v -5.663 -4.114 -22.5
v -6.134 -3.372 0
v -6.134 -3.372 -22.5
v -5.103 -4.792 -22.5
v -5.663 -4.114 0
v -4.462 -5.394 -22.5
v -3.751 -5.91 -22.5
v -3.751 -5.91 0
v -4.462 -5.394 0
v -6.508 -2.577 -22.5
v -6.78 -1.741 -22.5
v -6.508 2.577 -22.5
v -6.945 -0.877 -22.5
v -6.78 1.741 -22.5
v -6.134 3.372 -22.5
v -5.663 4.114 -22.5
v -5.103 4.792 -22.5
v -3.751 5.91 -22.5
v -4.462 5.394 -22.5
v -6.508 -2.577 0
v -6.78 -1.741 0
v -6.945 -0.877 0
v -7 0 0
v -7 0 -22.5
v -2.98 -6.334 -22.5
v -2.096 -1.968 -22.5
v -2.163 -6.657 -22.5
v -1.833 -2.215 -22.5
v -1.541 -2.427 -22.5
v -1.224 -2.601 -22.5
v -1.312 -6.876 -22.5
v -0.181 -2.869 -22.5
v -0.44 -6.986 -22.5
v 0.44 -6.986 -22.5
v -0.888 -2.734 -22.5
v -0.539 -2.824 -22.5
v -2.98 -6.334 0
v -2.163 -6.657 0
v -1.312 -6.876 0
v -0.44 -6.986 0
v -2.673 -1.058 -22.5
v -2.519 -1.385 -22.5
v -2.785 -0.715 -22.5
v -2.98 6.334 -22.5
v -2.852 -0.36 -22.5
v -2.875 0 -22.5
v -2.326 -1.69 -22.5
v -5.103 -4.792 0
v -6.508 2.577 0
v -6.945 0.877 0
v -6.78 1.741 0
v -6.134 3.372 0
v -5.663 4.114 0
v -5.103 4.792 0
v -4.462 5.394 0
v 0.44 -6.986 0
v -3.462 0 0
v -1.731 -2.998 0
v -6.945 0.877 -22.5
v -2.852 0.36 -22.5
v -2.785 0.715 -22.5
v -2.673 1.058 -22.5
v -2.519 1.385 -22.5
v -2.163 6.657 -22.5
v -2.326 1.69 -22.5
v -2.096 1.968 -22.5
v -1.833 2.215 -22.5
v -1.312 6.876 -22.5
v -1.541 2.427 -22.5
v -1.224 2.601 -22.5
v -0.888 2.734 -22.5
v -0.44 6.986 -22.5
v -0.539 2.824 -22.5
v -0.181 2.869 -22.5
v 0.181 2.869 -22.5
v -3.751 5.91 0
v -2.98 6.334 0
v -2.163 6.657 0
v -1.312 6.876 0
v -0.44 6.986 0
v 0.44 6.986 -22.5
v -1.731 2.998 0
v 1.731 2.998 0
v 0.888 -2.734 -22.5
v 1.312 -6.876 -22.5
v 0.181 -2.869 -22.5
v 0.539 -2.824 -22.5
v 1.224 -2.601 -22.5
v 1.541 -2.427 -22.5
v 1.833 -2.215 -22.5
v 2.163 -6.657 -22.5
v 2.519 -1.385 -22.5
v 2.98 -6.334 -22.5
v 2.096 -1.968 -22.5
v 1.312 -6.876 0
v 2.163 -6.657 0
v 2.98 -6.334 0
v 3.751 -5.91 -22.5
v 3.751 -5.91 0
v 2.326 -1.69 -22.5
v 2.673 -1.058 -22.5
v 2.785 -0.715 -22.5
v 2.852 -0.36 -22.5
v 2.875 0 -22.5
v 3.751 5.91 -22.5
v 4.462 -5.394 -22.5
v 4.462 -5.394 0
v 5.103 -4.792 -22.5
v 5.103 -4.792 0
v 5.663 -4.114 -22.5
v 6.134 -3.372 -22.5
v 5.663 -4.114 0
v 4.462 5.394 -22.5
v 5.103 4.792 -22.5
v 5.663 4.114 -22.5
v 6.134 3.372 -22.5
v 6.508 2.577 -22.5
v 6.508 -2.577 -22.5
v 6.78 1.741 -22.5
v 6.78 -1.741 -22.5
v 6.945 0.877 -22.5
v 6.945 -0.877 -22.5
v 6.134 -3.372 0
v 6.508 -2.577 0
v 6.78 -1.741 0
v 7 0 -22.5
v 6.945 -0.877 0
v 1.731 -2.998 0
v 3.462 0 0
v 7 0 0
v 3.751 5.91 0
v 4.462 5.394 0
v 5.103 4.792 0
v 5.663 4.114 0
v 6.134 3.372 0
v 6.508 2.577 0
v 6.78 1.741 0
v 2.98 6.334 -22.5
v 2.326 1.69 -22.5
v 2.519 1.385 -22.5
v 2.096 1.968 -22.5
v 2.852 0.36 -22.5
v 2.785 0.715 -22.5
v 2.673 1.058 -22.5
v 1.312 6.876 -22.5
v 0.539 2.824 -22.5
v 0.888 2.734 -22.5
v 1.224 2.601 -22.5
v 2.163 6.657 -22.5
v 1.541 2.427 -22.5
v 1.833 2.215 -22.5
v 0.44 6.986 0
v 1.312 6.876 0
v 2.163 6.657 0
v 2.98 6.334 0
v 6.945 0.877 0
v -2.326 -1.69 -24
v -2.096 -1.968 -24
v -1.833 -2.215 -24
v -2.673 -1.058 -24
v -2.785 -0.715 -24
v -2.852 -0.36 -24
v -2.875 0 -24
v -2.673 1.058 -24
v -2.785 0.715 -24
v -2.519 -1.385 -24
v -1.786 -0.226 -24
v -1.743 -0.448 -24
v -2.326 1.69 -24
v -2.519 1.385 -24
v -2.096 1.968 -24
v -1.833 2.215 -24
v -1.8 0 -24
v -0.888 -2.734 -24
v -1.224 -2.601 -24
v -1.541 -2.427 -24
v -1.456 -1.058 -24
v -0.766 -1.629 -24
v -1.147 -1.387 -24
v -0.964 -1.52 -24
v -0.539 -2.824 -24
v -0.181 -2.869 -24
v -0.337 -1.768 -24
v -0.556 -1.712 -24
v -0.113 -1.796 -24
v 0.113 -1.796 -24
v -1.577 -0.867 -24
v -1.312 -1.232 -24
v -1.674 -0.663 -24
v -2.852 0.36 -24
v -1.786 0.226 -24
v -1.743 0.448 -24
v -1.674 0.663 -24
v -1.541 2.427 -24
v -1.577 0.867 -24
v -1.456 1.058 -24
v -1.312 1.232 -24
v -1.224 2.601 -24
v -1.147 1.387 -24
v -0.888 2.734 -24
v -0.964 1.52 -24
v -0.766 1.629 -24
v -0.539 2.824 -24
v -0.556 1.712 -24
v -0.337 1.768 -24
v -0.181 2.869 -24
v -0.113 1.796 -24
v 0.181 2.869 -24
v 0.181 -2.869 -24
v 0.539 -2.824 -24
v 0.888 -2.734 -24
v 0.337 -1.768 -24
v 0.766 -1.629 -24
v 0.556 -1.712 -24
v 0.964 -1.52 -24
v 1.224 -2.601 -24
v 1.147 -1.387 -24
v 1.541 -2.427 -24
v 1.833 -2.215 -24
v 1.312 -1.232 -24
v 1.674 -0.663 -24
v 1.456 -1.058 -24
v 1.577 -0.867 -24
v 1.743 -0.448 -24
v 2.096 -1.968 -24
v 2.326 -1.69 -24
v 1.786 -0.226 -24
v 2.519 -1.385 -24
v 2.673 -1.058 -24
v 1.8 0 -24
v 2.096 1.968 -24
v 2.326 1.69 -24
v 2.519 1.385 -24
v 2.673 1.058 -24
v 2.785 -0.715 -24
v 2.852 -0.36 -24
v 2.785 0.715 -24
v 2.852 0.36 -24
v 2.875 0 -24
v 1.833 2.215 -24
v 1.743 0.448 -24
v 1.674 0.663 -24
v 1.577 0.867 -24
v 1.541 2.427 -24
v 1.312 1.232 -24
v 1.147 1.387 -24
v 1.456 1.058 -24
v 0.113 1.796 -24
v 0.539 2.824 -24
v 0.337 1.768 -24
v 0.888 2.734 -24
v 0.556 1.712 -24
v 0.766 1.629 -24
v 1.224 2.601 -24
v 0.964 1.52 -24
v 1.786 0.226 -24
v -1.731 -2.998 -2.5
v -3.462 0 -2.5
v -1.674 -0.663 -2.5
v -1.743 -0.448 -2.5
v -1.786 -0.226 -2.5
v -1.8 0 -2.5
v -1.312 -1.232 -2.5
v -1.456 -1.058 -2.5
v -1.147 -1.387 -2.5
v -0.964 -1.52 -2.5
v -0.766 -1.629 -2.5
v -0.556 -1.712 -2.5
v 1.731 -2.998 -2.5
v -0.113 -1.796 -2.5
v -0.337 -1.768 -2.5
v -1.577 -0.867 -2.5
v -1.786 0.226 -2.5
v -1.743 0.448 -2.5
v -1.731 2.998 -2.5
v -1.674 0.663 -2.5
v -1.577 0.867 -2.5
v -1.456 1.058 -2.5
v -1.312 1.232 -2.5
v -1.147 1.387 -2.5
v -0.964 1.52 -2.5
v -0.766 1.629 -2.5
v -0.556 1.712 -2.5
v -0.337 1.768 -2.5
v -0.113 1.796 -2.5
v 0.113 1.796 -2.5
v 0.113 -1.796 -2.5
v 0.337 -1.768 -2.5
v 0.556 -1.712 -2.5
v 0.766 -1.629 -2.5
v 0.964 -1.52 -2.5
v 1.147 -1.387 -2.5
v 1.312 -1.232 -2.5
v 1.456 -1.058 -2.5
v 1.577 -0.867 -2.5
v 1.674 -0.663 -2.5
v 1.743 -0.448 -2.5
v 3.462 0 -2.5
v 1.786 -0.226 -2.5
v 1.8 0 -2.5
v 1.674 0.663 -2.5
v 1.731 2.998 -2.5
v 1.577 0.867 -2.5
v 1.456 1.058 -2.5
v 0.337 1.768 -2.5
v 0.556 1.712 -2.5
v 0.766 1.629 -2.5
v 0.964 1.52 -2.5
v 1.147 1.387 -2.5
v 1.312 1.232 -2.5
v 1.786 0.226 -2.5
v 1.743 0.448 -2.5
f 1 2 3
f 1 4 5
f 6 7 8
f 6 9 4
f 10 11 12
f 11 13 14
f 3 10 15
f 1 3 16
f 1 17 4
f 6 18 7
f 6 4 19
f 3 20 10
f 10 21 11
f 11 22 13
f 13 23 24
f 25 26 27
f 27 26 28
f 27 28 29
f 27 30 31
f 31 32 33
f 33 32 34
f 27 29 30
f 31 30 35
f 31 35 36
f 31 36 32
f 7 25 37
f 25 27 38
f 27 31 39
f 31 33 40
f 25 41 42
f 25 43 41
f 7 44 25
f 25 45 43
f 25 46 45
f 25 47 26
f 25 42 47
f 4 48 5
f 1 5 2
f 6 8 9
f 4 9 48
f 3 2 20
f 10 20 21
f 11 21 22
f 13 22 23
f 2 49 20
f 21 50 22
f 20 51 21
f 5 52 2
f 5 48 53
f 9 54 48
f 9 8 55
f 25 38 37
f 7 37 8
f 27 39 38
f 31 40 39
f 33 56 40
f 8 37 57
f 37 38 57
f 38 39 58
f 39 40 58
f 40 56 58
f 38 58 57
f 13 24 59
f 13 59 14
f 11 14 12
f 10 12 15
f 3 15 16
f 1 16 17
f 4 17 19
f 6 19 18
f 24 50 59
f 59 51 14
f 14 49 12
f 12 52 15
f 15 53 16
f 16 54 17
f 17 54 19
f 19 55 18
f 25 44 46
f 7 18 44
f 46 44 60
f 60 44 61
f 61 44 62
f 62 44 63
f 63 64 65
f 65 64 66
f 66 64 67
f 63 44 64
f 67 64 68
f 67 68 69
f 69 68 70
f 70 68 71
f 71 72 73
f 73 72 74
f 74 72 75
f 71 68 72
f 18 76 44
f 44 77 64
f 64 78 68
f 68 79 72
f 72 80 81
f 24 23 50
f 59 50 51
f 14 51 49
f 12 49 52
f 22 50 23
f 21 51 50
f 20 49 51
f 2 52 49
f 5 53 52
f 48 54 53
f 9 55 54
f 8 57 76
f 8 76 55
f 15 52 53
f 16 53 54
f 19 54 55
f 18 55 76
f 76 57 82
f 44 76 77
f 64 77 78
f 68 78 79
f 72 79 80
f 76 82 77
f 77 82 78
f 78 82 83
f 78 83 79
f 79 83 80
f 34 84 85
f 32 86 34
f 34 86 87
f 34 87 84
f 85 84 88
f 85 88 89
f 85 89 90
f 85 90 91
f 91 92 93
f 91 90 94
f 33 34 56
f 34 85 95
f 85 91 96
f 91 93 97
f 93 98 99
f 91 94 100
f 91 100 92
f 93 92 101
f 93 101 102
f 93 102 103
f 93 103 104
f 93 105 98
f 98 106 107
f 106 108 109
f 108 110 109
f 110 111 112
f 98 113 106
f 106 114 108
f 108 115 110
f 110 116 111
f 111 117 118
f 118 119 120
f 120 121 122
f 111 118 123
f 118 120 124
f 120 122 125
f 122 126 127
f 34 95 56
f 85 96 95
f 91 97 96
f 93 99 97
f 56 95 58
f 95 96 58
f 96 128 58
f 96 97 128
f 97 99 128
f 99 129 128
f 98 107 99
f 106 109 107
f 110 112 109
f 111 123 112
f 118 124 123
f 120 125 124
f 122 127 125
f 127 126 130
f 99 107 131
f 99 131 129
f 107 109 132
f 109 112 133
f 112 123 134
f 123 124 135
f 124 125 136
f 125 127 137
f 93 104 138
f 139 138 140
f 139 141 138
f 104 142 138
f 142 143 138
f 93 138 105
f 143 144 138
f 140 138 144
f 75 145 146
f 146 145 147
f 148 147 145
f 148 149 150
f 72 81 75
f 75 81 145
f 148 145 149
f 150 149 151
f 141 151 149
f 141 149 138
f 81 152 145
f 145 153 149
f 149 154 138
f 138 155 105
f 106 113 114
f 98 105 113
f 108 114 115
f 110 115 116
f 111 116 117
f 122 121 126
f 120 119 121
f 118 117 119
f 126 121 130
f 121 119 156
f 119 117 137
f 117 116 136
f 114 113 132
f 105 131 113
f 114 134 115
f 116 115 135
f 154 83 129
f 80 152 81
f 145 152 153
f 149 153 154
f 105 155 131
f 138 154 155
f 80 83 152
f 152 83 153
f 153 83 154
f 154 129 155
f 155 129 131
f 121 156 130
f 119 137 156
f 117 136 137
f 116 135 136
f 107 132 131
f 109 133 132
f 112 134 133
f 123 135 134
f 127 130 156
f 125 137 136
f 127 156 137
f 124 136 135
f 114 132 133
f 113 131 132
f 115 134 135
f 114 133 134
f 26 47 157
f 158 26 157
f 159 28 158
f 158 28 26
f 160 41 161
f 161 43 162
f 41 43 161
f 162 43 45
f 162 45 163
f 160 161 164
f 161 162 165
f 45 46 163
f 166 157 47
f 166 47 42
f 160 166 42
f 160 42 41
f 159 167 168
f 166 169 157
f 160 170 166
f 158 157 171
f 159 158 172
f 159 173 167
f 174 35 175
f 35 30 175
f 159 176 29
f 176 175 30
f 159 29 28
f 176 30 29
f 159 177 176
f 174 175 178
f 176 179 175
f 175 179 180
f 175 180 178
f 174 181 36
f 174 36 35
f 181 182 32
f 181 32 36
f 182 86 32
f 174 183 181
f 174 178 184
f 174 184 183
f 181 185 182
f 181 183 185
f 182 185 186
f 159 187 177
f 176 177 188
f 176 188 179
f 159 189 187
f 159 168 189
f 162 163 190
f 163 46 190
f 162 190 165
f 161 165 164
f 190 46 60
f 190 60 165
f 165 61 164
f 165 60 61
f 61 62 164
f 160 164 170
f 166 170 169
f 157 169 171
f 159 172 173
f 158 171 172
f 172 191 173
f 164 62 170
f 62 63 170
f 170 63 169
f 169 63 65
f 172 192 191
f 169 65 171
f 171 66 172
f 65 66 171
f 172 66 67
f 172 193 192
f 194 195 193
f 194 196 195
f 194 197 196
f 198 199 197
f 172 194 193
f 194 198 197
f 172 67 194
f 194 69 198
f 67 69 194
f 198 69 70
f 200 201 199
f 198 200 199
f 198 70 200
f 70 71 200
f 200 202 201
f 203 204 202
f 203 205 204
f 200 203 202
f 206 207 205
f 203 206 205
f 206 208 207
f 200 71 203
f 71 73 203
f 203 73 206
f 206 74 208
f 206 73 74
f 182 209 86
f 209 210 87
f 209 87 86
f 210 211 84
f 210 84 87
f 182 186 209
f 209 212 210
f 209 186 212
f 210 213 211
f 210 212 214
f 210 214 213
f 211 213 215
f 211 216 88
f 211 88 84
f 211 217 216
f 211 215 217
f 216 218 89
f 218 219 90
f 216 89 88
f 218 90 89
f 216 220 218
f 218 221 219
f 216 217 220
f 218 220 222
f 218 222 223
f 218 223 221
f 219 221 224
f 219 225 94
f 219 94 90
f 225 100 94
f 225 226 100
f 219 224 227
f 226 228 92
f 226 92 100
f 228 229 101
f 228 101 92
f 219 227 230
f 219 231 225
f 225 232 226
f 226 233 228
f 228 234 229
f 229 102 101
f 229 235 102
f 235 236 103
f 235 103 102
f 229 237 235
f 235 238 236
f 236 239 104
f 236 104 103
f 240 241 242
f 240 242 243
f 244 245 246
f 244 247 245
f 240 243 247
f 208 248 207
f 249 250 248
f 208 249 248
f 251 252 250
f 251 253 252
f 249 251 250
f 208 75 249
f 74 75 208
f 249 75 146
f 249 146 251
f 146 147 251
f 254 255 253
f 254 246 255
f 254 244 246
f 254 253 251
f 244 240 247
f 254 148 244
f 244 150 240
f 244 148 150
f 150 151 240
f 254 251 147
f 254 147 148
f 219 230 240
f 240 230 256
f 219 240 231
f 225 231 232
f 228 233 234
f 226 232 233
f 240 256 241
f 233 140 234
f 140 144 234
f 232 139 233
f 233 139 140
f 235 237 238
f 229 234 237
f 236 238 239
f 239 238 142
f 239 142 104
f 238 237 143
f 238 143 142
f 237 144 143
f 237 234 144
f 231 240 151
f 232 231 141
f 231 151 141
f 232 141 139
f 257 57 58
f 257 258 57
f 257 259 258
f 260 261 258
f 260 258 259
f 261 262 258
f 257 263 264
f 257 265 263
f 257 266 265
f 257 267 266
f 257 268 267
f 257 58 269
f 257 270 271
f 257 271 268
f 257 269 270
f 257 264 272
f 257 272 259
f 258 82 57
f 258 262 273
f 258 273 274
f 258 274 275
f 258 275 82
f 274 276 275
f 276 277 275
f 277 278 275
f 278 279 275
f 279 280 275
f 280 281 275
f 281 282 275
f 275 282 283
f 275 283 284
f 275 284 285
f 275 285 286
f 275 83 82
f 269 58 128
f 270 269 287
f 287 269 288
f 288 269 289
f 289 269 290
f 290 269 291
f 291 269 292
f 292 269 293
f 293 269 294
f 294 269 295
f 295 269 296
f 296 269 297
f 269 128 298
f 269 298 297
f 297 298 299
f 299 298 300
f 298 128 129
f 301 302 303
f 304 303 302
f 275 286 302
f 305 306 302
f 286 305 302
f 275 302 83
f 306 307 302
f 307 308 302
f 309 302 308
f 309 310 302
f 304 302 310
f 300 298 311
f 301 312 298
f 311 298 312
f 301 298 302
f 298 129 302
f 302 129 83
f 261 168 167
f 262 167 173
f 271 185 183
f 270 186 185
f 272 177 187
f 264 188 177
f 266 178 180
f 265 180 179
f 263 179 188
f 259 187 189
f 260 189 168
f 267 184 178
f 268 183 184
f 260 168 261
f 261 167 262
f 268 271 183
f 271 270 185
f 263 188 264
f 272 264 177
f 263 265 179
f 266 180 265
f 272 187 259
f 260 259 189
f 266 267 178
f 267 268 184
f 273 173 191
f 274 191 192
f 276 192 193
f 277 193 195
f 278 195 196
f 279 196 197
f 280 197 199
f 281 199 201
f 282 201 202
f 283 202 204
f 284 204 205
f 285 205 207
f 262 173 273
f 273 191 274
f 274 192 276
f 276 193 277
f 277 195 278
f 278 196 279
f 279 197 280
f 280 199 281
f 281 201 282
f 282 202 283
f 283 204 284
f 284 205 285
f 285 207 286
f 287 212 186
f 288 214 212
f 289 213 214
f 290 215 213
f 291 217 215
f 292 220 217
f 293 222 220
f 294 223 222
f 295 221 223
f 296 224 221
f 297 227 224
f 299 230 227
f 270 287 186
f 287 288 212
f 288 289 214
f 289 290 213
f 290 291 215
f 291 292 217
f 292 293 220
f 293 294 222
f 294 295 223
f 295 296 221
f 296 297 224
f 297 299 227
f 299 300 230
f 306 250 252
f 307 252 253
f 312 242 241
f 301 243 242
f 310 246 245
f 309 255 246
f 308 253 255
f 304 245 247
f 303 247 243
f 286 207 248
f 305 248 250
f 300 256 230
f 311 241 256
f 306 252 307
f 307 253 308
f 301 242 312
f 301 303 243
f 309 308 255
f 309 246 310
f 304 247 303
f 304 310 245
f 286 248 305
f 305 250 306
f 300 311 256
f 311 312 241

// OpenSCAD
$fn = 50;

difference() {
	union() {
		translate(v = [0, 0, -22.5]) {
			cylinder(h = 22.5, r = 7.0);
		}
		#translate(v = [0, 0, -24.0]) {
			cylinder(h = 24, r = 2.875);
		}
	}
	union() {
		translate(v = [0, 0, 0]) {
			rotate(a = [0, 0, 0]) {
				difference() {
					union() {
						translate(v = [0, 0, -2.5]) {
							linear_extrude(height = 2.5) {
								polygon(points = [[3.4619999999999997, 0.0], [1.7310000000000003, 2.9981799479017264], [-1.7309999999999992, 2.9981799479017264], [-3.4619999999999997, 4.2397272186481365e-16], [-1.7310000000000014, -2.998179947901726], [1.7309999999999977, -2.9981799479017277]]);
							}
						}
					}
					union();
				}
			}
		}
		#translate(v = [0, 0, -100.0]) {
			cylinder(h = 200, r = 1.8);
		}
	}
}
